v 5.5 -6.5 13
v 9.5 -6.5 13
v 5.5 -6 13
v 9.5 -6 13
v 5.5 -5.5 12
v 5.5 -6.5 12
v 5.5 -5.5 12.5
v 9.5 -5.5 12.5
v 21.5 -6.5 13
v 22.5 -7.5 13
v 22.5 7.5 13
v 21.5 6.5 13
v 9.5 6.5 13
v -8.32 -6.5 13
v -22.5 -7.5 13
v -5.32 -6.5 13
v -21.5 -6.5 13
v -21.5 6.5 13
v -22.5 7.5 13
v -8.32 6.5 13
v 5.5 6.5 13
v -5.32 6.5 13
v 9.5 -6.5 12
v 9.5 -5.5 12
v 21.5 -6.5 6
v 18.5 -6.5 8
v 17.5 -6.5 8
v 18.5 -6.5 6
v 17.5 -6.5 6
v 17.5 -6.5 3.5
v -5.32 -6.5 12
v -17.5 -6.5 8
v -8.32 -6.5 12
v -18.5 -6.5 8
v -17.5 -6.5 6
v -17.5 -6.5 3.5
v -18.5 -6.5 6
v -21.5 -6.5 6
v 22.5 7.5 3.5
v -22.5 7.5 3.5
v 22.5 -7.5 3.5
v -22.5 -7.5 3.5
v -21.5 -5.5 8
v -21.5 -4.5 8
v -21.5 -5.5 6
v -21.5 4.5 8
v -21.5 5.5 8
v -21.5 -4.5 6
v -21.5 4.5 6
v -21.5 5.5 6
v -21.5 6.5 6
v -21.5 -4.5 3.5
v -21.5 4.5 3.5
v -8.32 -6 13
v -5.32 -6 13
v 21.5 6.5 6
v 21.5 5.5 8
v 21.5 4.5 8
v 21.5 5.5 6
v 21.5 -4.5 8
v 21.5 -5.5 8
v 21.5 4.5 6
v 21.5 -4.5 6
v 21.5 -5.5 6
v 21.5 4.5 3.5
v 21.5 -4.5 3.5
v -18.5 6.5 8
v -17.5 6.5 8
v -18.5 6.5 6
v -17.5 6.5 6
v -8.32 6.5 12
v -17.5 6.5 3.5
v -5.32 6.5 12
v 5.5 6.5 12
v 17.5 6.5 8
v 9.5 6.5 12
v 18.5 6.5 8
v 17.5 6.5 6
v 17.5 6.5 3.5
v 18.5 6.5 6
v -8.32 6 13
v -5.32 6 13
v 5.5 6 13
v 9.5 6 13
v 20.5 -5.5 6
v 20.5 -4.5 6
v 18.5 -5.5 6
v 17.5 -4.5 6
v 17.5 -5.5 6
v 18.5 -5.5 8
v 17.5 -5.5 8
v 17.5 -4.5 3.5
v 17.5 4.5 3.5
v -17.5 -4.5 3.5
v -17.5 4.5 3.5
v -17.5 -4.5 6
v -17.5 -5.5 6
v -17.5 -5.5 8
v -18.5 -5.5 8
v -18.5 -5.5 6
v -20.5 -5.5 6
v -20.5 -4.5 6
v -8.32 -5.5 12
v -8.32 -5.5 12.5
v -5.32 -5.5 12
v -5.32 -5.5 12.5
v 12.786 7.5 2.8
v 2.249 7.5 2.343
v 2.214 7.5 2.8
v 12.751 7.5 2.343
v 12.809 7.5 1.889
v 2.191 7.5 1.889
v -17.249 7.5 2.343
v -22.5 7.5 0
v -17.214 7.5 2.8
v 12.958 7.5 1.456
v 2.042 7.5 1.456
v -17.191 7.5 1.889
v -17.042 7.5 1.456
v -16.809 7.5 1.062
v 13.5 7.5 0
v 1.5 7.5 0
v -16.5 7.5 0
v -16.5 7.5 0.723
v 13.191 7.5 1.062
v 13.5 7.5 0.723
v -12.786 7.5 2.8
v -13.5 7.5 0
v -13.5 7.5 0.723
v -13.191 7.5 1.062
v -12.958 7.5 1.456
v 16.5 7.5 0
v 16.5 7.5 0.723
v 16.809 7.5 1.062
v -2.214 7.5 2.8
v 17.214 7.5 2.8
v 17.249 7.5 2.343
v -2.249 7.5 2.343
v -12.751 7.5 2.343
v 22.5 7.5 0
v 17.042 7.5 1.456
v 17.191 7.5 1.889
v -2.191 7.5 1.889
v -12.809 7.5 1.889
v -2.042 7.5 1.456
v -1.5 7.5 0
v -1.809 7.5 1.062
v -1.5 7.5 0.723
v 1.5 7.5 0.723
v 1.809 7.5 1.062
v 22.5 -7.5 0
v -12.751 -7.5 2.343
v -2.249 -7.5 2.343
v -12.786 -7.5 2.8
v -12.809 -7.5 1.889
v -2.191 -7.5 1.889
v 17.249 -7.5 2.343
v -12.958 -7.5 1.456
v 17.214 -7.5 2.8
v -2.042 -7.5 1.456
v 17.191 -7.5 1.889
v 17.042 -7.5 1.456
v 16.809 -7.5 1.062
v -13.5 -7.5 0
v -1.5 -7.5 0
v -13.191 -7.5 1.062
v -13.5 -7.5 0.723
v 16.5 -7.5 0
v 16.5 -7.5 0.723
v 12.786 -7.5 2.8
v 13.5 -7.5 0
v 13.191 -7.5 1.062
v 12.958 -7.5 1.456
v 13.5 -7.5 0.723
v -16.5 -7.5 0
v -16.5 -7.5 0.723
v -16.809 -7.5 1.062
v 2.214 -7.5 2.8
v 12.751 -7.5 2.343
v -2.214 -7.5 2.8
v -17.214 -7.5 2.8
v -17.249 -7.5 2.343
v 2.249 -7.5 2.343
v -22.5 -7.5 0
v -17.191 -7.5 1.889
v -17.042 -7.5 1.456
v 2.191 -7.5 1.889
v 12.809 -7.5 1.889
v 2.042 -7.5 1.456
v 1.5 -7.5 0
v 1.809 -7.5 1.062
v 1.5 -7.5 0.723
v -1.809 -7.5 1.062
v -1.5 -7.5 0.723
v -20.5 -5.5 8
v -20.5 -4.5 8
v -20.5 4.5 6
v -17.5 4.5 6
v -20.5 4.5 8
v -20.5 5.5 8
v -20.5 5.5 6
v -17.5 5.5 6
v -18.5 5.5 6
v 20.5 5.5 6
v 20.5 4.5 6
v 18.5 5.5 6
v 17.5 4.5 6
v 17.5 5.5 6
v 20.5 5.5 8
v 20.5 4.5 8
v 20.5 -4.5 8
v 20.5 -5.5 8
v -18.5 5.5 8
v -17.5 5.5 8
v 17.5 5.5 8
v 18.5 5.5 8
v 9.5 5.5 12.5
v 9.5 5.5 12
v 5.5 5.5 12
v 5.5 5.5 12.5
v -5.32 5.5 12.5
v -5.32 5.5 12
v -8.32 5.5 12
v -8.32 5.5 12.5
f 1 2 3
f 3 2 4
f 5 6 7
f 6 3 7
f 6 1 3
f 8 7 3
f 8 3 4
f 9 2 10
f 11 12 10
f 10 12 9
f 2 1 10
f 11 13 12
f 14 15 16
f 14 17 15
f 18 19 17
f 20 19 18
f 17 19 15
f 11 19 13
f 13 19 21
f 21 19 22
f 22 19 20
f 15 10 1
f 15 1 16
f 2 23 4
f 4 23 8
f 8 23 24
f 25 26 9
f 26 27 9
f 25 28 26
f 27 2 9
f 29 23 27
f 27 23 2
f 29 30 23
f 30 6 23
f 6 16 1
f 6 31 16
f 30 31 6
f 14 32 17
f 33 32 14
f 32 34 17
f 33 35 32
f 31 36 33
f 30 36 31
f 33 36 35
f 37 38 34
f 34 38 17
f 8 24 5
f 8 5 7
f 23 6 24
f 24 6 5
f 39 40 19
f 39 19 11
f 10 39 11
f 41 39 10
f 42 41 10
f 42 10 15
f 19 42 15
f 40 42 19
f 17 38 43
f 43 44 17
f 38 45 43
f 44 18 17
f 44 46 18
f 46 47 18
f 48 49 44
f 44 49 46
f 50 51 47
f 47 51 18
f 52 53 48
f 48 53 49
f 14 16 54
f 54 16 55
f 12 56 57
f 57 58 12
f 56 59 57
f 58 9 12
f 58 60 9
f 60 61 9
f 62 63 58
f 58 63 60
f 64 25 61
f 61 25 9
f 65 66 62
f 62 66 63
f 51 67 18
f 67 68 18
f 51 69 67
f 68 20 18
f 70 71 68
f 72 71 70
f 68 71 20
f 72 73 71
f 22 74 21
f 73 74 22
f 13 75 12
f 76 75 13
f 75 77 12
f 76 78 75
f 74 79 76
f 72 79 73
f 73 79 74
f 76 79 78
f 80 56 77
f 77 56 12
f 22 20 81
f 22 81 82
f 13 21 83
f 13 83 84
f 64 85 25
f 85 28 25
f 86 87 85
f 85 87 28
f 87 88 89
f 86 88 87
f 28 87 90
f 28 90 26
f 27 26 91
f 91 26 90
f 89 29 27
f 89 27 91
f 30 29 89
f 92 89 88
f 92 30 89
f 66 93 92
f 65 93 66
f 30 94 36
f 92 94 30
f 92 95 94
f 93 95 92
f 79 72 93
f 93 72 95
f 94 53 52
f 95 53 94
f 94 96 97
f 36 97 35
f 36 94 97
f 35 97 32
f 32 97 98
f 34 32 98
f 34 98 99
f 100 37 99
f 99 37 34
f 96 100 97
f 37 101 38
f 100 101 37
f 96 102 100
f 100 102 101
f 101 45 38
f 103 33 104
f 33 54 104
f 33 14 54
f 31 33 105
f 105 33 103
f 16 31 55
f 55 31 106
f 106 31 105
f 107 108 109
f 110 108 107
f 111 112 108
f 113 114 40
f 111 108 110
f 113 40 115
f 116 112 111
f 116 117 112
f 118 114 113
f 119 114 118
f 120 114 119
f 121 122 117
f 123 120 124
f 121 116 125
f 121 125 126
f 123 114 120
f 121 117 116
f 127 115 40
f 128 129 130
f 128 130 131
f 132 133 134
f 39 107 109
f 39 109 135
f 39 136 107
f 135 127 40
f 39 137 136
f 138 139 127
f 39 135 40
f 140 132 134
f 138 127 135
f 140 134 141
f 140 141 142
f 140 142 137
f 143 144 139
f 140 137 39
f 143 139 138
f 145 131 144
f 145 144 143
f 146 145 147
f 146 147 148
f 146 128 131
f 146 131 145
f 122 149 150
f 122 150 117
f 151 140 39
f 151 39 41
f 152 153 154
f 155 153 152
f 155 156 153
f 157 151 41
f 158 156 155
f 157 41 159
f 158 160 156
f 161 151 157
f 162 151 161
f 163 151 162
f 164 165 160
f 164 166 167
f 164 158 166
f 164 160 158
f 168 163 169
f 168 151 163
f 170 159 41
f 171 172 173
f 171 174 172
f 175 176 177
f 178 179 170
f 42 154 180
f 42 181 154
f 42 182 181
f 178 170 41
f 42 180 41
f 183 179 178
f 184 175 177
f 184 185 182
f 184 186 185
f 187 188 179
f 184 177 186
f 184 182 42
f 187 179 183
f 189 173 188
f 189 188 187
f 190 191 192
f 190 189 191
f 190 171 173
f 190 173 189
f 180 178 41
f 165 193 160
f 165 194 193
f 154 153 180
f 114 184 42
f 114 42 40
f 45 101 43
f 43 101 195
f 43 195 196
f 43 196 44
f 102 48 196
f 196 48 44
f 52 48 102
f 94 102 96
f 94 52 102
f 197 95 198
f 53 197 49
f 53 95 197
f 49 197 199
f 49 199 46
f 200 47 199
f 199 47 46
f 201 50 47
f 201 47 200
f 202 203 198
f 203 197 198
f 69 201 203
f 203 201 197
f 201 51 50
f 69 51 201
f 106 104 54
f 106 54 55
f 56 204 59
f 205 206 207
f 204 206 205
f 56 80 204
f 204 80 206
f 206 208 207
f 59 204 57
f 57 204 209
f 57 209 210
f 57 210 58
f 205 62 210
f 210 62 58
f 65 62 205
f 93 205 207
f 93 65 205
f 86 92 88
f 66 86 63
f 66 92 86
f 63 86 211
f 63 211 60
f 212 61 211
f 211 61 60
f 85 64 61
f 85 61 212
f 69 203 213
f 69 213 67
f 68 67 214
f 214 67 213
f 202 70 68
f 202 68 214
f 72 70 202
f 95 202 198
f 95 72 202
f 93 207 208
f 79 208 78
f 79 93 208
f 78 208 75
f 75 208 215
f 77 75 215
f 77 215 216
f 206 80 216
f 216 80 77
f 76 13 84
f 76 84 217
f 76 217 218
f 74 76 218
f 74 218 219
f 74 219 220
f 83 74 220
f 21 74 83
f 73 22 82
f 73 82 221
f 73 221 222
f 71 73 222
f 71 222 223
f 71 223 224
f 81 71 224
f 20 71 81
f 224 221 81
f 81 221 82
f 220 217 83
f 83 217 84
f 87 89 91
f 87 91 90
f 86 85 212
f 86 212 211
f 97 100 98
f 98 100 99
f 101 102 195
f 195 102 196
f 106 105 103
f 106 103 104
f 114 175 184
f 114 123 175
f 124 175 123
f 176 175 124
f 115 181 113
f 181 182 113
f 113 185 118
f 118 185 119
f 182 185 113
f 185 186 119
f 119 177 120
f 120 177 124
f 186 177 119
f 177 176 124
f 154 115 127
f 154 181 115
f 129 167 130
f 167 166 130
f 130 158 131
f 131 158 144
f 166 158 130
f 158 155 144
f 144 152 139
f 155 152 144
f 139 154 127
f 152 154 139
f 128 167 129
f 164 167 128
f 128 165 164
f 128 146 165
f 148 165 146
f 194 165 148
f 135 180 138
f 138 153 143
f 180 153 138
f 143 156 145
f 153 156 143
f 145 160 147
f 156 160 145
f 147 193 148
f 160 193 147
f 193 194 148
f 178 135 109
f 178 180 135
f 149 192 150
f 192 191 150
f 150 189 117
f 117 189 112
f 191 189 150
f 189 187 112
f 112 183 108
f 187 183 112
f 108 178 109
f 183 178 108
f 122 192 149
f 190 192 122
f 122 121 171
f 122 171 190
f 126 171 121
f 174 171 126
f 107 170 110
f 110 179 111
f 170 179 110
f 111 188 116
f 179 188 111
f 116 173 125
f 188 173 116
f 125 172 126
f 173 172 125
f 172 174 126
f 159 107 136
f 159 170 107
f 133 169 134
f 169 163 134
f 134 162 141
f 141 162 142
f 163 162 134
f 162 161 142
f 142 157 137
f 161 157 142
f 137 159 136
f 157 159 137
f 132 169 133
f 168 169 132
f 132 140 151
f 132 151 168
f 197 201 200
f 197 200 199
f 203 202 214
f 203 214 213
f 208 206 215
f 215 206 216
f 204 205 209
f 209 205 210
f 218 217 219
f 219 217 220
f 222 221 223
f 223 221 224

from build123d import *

# Parameters (mm, degrees)
SKETCH_W                = 45
SKETCH_H                = 15
PAD_DEPTH               = 3.5
POCKET_DEPTH            = 15.001
LINEARPATTERN_COUNT     = 3
LINEARPATTERN_PITCH     = 15
SKETCH002_W             = 4
SKETCH002_H             = 2
PAD001_DEPTH            = 2.5
SKETCH003_W             = 45
SKETCH003_H             = 15
SKETCH003_W_2           = 43
SKETCH003_H_2           = 13
PAD002_DEPTH            = 9.5
SKETCH004_W             = 1
SKETCH004_H             = 1
PAD003_DEPTH            = 2
SKETCH004_MIRRORED_2_W  = 1
SKETCH004_MIRRORED_2_H  = 1
PAD003_MIRRORED_2_DEPTH = 2
SKETCH005_W             = 3
SKETCH005_H             = 1
SKETCH005_W_2           = 4
PAD004_DEPTH            = 1
CHAMFER_SIZE            = 0.5


with BuildPart() as part:
    # Sketch → Pad (new body)
    with BuildSketch(Plane.XY):
        Rectangle(SKETCH_W, SKETCH_H)
    extrude(amount=PAD_DEPTH)

    # Sketch001 (on Face3 of Pad) → Pocket (cut, through all)
    with BuildSketch(Plane.XZ.offset(7.5)):
        with BuildLine():
            Line((-16.5, 0.722949), (-16.5, 0))
            Line((-16.5, 0), (-13.5, 0))
            Line((-13.5, 0), (-13.5, 0.722949))
            ThreePointArc((-13.5, 0.722949), (-12.87226, 1.668412), (-12.785841, 2.8))
            Line((-17.214159, 2.8), (-12.785841, 2.8))
            ThreePointArc((-17.214159, 2.8), (-17.12774, 1.668412), (-16.5, 0.722949))
        make_face()
    pocket = extrude(amount=-POCKET_DEPTH, mode=Mode.SUBTRACT)

    # LinearPattern: Pocket ×3
    with Locations(*[(i * LINEARPATTERN_PITCH, 0, 0) for i in range(1, LINEARPATTERN_COUNT)]):
        add(pocket, mode=Mode.SUBTRACT)

    # Sketch002 (on Face22 of LinearPattern) → Pad001 (join)
    with BuildSketch(Plane.XY.offset(3.5)):
        with Locations((-19.5, 5.5)):
            Rectangle(SKETCH002_W, SKETCH002_H)
        with Locations((-19.5, -5.5)):
            Rectangle(SKETCH002_W, SKETCH002_H)
        with Locations((19.5, 5.5)):
            Rectangle(SKETCH002_W, SKETCH002_H)
        with Locations((19.5, -5.5)):
            Rectangle(SKETCH002_W, SKETCH002_H)
    extrude(amount=PAD001_DEPTH)

    # Sketch003 (on Face22 of Pad001) → Pad002 (join)
    with BuildSketch(Plane.XY.offset(3.5)):
        Rectangle(SKETCH003_W, SKETCH003_H)
        Rectangle(SKETCH003_W_2, SKETCH003_H_2, mode=Mode.SUBTRACT)
    extrude(amount=PAD002_DEPTH)

    # Sketch004 (on Face37 of Pad002) → Pad003 (join)
    with BuildSketch(Plane.XY.offset(6)):
        with Locations((-18, 6)):
            Rectangle(SKETCH004_W, SKETCH004_H)
        with Locations((-21, 5)):
            Rectangle(SKETCH004_W, SKETCH004_H)
    pad003 = extrude(amount=PAD003_DEPTH)

    # Sketch004 Mirrored 2 → Pad003 Mirrored 2 (add)
    with BuildSketch(Plane(origin=(0, 0, 6), x_dir=(-1, 0, 0), z_dir=(0, 0, -1))):
        with Locations((-18, 6)):
            Rectangle(SKETCH004_MIRRORED_2_W, SKETCH004_MIRRORED_2_H)
        with Locations((-21, 5)):
            Rectangle(SKETCH004_MIRRORED_2_W, SKETCH004_MIRRORED_2_H)
    pad003_mirrored_2 = extrude(amount=-PAD003_MIRRORED_2_DEPTH)

    # Mirrored001: Pad003, Pad003 Mirrored 2 across Sketch004 H_Axis
    add(pad003.mirror(Plane(origin=(0, 0, 6), x_dir=(0, 0, 1), z_dir=(0, 1, 0))))
    add(pad003_mirrored_2.mirror(Plane(origin=(0, 0, 6), x_dir=(0, 0, 1), z_dir=(0, 1, 0))))

    # Sketch005 (on Face32 of MultiTransform) → Pad004 (join)
    with BuildSketch(Plane.XZ.offset(-6.5)):
        with Locations((-6.82, 12.5)):
            Rectangle(SKETCH005_W, SKETCH005_H)
        with Locations((7.5, 12.5)):
            Rectangle(SKETCH005_W_2, SKETCH005_H)
    pad004 = extrude(amount=PAD004_DEPTH)

    # Mirrored002: Pad004 across XZ
    add(pad004.mirror(Plane.XZ))

    # Chamfer
    chamfer_edges = [part.edges().sort_by_distance(p)[0] for p in [
        (-6.82, 5.5, 13),
        (7.5, 5.5, 13),
        (7.5, -5.5, 13),
        (-6.82, -5.5, 13),
    ]]
    chamfer(chamfer_edges, length=CHAMFER_SIZE)


solid = part.part
